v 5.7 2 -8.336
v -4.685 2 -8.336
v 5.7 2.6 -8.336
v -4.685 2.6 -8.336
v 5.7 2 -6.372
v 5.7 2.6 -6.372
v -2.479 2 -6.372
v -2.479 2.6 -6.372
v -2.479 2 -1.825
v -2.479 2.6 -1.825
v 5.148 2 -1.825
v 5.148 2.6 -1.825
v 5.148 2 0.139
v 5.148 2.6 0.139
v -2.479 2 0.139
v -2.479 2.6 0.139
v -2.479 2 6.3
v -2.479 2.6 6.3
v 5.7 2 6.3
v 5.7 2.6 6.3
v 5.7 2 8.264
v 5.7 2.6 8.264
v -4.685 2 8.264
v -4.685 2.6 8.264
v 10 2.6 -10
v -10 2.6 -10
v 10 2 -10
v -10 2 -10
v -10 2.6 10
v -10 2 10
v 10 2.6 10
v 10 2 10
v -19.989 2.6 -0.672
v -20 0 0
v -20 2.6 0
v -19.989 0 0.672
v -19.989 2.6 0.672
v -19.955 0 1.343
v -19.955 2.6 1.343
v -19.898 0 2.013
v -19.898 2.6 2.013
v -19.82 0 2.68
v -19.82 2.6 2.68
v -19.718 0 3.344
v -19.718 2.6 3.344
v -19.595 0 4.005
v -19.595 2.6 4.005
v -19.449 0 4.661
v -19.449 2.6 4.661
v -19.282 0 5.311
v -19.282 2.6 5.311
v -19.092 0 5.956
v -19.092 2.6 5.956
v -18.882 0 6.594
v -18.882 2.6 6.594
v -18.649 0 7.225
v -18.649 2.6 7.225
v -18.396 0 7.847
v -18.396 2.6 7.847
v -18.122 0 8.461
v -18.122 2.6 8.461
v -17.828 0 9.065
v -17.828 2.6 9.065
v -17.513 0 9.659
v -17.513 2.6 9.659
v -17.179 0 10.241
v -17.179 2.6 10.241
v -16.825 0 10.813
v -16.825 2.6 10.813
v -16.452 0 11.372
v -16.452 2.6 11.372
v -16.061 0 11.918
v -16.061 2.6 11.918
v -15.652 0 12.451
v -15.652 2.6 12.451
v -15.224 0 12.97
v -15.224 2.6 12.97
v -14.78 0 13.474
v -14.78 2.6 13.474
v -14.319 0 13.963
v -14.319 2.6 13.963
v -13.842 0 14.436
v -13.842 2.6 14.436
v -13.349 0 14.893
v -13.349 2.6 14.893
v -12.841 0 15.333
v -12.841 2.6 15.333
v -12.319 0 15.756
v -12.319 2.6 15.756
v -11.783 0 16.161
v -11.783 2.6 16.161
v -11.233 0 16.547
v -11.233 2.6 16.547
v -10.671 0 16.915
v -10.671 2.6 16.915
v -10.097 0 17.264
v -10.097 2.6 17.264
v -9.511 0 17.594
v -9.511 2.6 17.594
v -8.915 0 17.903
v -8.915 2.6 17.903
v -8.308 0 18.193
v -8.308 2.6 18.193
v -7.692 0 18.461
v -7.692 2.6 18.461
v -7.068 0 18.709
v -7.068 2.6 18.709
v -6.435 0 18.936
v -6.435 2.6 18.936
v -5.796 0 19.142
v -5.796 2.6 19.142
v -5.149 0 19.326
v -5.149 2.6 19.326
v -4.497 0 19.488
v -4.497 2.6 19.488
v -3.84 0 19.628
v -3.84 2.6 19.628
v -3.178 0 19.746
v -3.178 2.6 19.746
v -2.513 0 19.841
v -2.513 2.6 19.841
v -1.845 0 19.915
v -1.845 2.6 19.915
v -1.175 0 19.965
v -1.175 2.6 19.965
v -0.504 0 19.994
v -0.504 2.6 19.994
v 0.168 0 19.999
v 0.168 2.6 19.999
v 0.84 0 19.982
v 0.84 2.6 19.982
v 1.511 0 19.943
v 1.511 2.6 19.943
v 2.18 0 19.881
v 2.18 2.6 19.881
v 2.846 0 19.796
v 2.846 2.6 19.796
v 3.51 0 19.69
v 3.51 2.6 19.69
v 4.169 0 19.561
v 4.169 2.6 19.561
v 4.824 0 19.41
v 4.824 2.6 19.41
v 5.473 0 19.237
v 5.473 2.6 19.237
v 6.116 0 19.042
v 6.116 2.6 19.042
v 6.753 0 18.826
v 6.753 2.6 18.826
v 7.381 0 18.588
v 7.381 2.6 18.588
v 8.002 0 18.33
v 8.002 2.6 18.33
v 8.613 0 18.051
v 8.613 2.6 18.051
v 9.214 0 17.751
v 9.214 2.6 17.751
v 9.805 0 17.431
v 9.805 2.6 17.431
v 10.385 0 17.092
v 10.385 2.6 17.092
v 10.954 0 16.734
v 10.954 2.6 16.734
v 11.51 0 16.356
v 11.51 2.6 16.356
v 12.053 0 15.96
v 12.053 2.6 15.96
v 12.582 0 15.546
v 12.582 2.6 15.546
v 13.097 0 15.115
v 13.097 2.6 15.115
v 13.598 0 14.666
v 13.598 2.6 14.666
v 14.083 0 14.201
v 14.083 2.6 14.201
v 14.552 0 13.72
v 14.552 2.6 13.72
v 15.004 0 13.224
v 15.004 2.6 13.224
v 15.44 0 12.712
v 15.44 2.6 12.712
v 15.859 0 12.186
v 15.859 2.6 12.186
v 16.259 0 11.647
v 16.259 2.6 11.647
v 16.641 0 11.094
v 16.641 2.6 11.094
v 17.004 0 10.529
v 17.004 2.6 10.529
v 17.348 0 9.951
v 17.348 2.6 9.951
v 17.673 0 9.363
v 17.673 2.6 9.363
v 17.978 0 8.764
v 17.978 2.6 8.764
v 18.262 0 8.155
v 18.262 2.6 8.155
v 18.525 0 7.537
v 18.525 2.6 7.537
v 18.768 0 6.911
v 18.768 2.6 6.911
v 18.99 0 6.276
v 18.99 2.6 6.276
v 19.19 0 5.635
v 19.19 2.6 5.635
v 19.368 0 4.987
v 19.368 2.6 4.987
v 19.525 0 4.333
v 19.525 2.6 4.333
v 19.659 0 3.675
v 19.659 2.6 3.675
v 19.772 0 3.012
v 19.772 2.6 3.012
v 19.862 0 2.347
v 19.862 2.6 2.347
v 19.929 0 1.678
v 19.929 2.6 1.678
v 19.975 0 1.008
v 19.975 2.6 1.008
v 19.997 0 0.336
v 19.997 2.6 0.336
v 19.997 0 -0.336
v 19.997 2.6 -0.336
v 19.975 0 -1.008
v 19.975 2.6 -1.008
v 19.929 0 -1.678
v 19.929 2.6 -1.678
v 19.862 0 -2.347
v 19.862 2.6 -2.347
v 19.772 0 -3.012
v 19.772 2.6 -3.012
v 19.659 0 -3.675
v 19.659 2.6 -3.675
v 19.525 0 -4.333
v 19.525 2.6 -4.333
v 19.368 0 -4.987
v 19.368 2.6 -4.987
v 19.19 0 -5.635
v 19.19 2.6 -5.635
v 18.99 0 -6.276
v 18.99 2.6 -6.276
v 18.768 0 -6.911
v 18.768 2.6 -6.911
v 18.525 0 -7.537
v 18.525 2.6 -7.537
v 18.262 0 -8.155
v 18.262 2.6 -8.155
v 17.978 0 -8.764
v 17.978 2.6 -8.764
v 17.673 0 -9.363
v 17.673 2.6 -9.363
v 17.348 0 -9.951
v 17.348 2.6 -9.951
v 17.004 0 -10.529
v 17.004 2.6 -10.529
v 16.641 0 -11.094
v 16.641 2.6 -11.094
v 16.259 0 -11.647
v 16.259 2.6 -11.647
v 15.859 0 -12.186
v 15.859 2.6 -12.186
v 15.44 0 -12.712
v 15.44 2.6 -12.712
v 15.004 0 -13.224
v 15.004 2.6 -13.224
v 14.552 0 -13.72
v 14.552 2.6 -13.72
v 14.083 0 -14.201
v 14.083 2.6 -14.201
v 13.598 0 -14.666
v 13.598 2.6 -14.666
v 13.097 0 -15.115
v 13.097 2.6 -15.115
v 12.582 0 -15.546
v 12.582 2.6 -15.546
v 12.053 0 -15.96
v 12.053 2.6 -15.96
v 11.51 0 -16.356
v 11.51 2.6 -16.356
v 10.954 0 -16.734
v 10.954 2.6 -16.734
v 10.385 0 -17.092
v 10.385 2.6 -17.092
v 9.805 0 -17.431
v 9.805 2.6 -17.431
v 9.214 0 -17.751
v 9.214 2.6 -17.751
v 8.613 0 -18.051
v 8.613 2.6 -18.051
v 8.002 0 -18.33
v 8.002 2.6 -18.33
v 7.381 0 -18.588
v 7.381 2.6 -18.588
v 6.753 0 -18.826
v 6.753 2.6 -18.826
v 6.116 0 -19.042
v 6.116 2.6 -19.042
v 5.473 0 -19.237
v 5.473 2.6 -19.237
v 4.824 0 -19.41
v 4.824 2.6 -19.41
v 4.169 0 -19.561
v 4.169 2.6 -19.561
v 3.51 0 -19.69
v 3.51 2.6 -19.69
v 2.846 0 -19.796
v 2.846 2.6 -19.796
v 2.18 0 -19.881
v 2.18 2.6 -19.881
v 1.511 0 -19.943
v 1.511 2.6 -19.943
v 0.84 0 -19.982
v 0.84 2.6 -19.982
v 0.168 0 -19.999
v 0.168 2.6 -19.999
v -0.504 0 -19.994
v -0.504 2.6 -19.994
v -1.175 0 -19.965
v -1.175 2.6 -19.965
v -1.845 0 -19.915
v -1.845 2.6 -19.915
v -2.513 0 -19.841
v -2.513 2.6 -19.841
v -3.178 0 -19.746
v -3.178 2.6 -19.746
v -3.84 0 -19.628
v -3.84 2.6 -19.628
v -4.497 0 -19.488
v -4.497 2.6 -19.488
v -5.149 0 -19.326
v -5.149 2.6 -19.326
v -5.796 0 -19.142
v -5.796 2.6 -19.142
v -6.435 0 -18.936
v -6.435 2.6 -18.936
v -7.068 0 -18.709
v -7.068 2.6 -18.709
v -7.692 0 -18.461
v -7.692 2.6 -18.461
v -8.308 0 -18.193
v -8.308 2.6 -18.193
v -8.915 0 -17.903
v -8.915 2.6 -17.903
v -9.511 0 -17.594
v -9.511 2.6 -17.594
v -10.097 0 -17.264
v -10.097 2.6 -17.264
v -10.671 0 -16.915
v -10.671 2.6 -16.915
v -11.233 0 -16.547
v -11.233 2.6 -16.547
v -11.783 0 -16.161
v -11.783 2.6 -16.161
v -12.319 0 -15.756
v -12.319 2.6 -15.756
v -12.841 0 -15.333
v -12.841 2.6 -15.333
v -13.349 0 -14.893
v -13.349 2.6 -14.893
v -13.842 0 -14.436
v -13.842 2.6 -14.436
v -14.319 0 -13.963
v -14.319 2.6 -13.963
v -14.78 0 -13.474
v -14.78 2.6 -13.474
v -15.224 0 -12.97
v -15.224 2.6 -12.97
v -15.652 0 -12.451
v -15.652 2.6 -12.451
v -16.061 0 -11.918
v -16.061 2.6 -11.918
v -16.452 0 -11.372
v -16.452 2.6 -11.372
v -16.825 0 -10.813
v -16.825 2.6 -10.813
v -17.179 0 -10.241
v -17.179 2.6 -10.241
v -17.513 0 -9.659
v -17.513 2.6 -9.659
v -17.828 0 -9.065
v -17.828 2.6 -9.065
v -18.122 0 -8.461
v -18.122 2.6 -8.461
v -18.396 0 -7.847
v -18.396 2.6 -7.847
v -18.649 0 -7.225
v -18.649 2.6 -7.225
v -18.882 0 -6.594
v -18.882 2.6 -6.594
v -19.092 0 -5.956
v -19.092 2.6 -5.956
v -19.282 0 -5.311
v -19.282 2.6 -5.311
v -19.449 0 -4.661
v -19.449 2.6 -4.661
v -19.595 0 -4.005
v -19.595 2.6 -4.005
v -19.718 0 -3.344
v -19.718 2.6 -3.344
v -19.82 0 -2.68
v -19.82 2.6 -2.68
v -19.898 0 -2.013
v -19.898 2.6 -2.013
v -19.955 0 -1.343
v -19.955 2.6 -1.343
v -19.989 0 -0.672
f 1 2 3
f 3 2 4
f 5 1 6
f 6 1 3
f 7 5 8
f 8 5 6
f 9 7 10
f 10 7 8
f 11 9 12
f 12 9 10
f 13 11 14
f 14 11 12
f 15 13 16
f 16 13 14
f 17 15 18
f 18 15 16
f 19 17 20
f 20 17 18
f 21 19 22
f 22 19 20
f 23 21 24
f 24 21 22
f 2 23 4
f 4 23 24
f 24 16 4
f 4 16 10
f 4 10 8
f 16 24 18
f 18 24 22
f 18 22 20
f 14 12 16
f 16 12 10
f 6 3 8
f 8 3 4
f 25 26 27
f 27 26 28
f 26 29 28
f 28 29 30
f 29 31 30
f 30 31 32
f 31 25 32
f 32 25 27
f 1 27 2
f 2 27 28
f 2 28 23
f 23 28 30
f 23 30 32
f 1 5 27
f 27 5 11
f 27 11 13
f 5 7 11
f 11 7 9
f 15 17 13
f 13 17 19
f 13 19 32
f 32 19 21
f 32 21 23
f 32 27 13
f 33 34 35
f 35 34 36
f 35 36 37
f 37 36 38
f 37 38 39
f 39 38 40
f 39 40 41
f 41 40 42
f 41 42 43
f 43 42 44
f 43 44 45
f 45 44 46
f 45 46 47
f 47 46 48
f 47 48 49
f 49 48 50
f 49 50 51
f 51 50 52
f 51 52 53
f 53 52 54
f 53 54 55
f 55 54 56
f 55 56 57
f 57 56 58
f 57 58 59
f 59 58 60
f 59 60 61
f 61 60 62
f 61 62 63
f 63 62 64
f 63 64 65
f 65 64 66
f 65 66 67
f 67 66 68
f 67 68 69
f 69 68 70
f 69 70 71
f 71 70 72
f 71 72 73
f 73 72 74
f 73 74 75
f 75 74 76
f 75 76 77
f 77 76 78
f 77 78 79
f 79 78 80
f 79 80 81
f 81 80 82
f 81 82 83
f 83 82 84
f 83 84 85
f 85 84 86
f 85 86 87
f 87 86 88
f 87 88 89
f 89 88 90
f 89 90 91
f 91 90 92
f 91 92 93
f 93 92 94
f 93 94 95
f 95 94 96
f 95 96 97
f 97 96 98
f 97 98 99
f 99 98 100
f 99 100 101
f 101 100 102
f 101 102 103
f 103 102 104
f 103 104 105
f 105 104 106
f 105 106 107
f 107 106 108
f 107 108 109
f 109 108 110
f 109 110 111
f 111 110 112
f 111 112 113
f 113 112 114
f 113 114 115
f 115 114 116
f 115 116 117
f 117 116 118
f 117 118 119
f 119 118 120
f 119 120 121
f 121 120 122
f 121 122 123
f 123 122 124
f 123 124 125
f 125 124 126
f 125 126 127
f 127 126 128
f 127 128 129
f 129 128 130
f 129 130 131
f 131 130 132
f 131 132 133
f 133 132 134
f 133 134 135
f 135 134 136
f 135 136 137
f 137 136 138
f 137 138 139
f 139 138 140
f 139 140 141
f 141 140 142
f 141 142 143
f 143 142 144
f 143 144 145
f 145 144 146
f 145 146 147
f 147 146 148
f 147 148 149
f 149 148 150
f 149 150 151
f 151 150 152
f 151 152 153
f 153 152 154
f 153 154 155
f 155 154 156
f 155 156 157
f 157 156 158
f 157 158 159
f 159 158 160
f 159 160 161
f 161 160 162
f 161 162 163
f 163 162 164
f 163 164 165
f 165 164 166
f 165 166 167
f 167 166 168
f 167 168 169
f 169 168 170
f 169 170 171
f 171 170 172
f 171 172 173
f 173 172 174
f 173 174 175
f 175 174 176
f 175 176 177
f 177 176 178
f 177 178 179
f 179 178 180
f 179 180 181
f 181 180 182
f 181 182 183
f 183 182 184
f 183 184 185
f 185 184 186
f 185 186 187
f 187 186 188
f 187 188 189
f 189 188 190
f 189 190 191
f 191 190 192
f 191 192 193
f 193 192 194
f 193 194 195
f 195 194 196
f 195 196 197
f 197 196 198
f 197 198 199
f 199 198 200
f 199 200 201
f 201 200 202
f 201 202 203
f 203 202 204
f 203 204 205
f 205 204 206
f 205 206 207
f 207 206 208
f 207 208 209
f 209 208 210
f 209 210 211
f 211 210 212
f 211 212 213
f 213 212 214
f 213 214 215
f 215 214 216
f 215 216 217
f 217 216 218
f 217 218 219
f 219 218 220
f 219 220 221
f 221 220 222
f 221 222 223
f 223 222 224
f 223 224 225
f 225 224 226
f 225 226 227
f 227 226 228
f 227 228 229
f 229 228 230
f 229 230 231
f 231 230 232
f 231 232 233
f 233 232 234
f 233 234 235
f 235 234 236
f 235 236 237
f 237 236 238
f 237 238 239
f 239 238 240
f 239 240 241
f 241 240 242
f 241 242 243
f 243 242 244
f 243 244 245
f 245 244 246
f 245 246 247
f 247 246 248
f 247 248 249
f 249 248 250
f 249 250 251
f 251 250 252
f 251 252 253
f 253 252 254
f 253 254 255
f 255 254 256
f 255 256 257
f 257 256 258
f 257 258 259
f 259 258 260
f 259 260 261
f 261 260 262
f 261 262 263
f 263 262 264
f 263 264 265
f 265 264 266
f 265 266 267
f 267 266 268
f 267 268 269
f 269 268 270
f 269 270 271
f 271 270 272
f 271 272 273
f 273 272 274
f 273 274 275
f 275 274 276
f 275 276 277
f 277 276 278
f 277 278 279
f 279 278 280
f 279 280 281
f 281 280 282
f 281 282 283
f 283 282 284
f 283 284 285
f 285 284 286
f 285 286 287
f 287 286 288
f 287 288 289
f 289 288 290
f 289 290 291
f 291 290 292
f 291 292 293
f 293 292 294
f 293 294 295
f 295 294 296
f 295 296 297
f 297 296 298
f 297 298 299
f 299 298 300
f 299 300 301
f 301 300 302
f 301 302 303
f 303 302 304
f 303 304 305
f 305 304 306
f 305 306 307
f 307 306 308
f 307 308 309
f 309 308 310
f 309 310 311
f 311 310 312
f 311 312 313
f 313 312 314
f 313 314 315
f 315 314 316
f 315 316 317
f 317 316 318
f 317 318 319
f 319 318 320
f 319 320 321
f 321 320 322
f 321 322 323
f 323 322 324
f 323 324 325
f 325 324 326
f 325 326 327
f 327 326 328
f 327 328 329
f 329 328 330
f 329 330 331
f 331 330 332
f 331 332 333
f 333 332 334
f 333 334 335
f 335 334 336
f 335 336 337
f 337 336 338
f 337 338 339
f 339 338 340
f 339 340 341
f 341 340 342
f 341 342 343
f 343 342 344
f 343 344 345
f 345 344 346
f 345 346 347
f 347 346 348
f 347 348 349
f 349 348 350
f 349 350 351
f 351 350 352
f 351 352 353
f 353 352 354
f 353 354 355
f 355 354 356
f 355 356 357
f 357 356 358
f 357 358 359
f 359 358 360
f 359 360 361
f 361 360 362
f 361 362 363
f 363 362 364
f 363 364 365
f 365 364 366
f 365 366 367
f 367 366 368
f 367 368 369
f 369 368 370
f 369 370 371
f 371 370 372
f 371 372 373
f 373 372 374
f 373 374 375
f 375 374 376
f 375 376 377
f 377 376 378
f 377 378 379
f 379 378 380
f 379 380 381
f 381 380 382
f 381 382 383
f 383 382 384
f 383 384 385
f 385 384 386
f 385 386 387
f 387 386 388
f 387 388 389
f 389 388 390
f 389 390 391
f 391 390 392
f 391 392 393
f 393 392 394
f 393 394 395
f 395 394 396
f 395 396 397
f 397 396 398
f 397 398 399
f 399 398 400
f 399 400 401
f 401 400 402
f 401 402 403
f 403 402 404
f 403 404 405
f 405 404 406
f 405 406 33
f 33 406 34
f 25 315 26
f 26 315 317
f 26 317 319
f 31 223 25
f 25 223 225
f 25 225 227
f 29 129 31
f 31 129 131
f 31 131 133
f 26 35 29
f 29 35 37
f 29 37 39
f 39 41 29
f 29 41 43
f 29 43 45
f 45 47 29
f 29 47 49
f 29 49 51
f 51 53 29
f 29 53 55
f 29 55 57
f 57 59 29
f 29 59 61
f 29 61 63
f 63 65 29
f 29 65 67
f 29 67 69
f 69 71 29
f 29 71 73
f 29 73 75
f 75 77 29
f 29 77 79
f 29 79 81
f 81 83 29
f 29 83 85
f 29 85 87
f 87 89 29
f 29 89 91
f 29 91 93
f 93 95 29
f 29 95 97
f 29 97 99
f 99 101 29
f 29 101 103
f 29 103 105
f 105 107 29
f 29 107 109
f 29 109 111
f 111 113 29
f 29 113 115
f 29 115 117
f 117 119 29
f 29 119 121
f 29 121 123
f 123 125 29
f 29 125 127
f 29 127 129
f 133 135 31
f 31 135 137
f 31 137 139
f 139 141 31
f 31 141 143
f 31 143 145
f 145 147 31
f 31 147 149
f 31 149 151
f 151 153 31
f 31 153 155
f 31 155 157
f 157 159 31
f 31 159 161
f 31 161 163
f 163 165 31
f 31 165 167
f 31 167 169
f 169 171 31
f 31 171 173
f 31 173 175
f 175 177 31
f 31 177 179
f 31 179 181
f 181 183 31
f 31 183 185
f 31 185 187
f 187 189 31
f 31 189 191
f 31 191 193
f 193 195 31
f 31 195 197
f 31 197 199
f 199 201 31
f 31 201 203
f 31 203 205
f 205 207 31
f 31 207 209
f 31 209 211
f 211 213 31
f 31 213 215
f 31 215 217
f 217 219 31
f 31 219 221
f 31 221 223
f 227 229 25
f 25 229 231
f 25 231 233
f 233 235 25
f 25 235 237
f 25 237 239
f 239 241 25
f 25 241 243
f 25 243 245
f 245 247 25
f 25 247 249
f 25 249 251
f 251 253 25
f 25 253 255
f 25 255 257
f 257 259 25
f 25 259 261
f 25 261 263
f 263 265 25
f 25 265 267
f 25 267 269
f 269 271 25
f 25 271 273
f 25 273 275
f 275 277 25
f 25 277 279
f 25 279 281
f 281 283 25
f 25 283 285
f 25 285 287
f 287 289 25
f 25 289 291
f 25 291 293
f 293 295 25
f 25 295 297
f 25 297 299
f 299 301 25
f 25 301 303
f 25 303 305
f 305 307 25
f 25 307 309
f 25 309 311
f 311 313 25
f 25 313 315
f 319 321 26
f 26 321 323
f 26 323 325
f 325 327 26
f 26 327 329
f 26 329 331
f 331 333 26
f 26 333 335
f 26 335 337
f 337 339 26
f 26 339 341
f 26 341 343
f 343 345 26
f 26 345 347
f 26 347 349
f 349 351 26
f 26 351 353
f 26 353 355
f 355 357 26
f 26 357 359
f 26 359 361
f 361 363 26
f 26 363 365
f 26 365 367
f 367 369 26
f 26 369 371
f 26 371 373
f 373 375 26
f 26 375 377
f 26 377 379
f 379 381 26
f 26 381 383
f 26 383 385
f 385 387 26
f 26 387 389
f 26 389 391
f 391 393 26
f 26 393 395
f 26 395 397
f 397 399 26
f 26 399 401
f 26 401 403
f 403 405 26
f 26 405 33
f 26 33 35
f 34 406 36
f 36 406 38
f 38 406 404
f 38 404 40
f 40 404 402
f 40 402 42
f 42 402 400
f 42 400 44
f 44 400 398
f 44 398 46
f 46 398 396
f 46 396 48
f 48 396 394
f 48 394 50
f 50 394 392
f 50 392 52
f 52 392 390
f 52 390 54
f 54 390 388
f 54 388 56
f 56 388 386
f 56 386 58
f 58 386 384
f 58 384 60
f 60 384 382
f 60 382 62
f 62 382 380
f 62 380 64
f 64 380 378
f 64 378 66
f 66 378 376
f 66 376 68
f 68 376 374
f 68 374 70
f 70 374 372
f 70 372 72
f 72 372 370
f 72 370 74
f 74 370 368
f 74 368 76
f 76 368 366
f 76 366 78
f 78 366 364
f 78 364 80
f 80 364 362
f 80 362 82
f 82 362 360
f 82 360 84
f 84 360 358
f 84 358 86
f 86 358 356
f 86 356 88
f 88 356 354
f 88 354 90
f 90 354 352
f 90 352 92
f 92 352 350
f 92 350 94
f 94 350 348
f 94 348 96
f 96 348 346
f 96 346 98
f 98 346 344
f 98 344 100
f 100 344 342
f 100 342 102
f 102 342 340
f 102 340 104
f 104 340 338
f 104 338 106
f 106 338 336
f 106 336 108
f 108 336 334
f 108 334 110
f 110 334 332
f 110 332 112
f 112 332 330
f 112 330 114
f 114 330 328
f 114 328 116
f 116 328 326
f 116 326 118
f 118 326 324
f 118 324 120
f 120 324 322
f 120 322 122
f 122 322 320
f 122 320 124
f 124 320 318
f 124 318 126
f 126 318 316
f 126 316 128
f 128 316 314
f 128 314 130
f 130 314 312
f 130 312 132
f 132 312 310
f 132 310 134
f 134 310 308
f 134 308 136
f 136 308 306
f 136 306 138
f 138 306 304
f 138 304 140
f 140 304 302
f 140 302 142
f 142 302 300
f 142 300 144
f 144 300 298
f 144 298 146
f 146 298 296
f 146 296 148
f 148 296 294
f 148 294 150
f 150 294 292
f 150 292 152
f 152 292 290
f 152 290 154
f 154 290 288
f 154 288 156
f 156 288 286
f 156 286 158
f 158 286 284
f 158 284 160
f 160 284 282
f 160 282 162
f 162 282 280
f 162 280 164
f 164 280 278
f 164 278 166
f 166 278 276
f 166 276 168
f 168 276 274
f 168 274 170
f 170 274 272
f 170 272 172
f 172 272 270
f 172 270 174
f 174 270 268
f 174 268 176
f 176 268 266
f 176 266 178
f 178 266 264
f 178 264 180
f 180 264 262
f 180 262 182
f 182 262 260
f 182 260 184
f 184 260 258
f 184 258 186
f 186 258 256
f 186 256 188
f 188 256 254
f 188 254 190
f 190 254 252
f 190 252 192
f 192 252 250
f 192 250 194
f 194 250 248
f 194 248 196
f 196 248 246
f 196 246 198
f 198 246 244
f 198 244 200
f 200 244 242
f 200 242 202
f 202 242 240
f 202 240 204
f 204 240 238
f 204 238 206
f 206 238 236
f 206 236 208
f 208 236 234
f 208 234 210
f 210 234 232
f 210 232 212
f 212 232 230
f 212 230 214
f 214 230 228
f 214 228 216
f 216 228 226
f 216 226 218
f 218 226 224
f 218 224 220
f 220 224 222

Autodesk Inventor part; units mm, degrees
ref_plane "YZ Plane" through (0, 0, 0) normal (1, 0, 0) x (0, 1, 0)
ref_plane "XZ Plane" through (0, 0, 0) normal (0, 1, 0) x (-1, 0, 0)
ref_plane "XY Plane" through (0, 0, 0) normal (0, 0, 1) x (1, 0, 0)
sketch "Sketch1" plane through (0, 0, 0) normal (0, 1, 0) x (-1, 0, 0)
  circle A0 centre (0, 0) radius 20
  dimension "d0" = 40
extrude "Extrusion1" add sketch "Sketch1" along normal blind 2.6
sketch "Sketch2" plane through (0, 2.6, 0) normal (0, 1, 0) x (1, 0, 0)
  line L0 (-10, -10) -> (-10, 10)
  line L1 (-10, 10) -> (10, 10)
  line L2 (10, 10) -> (10, -10)
  line L3 (10, -10) -> (-10, -10)
  line L4 (-10, -10) -> (10, 10) construction
  line L5 (-10, 10) -> (10, -10) construction
  point P0 (0, 0)
  dimension "d3" = 20
  dimension "d4" = 20
extrude "Extrusion2" cut sketch "Sketch2" against normal blind 0.6
sketch "Sketch3" plane through (0, 2, 0) normal (0, 1, 0) x (1, 0, 0)
  line L0 (-6.3669, 8.3364) -> (6.4396, 8.3364) construction
  line L1 (6.4396, 8.3364) -> (6.4396, -8.2636) construction
  line L2 (6.4396, -8.2636) -> (-6.3669, -8.2636) construction
  line L3 (-6.3669, -8.2636) -> (-6.3669, 8.3364) construction
  line L4 (-4.6854, -8.2636) -> (-4.6854, 8.3364)
  line L5 (-4.6854, 8.3364) -> (5.6997, 8.3364)
  line L6 (5.6997, 8.3364) -> (5.6997, 6.3723)
  line L7 (5.6997, 6.3723) -> (-2.4792, 6.3723)
  line L8 (-2.4792, 6.3723) -> (-2.4792, 1.8255)
  line L9 (-2.4792, 1.8255) -> (5.1482, 1.8255)
  line L10 (5.1482, 1.8255) -> (5.1482, -0.1385)
  line L11 (5.1482, -0.1385) -> (-2.4792, -0.1385)
  line L12 (-2.4792, -0.1385) -> (-2.4792, -6.2996)
  line L13 (-2.4792, -6.2996) -> (5.6997, -6.2996)
  line L14 (5.6997, -6.2996) -> (5.6997, -8.2636)
  line L15 (5.6997, -8.2636) -> (-4.6854, -8.2636)
  point P0 (0, 0)
extrude "Extrusion3" add sketch "Sketch3" along normal blind 0.6
properties part number "TopMarkerPreset"
